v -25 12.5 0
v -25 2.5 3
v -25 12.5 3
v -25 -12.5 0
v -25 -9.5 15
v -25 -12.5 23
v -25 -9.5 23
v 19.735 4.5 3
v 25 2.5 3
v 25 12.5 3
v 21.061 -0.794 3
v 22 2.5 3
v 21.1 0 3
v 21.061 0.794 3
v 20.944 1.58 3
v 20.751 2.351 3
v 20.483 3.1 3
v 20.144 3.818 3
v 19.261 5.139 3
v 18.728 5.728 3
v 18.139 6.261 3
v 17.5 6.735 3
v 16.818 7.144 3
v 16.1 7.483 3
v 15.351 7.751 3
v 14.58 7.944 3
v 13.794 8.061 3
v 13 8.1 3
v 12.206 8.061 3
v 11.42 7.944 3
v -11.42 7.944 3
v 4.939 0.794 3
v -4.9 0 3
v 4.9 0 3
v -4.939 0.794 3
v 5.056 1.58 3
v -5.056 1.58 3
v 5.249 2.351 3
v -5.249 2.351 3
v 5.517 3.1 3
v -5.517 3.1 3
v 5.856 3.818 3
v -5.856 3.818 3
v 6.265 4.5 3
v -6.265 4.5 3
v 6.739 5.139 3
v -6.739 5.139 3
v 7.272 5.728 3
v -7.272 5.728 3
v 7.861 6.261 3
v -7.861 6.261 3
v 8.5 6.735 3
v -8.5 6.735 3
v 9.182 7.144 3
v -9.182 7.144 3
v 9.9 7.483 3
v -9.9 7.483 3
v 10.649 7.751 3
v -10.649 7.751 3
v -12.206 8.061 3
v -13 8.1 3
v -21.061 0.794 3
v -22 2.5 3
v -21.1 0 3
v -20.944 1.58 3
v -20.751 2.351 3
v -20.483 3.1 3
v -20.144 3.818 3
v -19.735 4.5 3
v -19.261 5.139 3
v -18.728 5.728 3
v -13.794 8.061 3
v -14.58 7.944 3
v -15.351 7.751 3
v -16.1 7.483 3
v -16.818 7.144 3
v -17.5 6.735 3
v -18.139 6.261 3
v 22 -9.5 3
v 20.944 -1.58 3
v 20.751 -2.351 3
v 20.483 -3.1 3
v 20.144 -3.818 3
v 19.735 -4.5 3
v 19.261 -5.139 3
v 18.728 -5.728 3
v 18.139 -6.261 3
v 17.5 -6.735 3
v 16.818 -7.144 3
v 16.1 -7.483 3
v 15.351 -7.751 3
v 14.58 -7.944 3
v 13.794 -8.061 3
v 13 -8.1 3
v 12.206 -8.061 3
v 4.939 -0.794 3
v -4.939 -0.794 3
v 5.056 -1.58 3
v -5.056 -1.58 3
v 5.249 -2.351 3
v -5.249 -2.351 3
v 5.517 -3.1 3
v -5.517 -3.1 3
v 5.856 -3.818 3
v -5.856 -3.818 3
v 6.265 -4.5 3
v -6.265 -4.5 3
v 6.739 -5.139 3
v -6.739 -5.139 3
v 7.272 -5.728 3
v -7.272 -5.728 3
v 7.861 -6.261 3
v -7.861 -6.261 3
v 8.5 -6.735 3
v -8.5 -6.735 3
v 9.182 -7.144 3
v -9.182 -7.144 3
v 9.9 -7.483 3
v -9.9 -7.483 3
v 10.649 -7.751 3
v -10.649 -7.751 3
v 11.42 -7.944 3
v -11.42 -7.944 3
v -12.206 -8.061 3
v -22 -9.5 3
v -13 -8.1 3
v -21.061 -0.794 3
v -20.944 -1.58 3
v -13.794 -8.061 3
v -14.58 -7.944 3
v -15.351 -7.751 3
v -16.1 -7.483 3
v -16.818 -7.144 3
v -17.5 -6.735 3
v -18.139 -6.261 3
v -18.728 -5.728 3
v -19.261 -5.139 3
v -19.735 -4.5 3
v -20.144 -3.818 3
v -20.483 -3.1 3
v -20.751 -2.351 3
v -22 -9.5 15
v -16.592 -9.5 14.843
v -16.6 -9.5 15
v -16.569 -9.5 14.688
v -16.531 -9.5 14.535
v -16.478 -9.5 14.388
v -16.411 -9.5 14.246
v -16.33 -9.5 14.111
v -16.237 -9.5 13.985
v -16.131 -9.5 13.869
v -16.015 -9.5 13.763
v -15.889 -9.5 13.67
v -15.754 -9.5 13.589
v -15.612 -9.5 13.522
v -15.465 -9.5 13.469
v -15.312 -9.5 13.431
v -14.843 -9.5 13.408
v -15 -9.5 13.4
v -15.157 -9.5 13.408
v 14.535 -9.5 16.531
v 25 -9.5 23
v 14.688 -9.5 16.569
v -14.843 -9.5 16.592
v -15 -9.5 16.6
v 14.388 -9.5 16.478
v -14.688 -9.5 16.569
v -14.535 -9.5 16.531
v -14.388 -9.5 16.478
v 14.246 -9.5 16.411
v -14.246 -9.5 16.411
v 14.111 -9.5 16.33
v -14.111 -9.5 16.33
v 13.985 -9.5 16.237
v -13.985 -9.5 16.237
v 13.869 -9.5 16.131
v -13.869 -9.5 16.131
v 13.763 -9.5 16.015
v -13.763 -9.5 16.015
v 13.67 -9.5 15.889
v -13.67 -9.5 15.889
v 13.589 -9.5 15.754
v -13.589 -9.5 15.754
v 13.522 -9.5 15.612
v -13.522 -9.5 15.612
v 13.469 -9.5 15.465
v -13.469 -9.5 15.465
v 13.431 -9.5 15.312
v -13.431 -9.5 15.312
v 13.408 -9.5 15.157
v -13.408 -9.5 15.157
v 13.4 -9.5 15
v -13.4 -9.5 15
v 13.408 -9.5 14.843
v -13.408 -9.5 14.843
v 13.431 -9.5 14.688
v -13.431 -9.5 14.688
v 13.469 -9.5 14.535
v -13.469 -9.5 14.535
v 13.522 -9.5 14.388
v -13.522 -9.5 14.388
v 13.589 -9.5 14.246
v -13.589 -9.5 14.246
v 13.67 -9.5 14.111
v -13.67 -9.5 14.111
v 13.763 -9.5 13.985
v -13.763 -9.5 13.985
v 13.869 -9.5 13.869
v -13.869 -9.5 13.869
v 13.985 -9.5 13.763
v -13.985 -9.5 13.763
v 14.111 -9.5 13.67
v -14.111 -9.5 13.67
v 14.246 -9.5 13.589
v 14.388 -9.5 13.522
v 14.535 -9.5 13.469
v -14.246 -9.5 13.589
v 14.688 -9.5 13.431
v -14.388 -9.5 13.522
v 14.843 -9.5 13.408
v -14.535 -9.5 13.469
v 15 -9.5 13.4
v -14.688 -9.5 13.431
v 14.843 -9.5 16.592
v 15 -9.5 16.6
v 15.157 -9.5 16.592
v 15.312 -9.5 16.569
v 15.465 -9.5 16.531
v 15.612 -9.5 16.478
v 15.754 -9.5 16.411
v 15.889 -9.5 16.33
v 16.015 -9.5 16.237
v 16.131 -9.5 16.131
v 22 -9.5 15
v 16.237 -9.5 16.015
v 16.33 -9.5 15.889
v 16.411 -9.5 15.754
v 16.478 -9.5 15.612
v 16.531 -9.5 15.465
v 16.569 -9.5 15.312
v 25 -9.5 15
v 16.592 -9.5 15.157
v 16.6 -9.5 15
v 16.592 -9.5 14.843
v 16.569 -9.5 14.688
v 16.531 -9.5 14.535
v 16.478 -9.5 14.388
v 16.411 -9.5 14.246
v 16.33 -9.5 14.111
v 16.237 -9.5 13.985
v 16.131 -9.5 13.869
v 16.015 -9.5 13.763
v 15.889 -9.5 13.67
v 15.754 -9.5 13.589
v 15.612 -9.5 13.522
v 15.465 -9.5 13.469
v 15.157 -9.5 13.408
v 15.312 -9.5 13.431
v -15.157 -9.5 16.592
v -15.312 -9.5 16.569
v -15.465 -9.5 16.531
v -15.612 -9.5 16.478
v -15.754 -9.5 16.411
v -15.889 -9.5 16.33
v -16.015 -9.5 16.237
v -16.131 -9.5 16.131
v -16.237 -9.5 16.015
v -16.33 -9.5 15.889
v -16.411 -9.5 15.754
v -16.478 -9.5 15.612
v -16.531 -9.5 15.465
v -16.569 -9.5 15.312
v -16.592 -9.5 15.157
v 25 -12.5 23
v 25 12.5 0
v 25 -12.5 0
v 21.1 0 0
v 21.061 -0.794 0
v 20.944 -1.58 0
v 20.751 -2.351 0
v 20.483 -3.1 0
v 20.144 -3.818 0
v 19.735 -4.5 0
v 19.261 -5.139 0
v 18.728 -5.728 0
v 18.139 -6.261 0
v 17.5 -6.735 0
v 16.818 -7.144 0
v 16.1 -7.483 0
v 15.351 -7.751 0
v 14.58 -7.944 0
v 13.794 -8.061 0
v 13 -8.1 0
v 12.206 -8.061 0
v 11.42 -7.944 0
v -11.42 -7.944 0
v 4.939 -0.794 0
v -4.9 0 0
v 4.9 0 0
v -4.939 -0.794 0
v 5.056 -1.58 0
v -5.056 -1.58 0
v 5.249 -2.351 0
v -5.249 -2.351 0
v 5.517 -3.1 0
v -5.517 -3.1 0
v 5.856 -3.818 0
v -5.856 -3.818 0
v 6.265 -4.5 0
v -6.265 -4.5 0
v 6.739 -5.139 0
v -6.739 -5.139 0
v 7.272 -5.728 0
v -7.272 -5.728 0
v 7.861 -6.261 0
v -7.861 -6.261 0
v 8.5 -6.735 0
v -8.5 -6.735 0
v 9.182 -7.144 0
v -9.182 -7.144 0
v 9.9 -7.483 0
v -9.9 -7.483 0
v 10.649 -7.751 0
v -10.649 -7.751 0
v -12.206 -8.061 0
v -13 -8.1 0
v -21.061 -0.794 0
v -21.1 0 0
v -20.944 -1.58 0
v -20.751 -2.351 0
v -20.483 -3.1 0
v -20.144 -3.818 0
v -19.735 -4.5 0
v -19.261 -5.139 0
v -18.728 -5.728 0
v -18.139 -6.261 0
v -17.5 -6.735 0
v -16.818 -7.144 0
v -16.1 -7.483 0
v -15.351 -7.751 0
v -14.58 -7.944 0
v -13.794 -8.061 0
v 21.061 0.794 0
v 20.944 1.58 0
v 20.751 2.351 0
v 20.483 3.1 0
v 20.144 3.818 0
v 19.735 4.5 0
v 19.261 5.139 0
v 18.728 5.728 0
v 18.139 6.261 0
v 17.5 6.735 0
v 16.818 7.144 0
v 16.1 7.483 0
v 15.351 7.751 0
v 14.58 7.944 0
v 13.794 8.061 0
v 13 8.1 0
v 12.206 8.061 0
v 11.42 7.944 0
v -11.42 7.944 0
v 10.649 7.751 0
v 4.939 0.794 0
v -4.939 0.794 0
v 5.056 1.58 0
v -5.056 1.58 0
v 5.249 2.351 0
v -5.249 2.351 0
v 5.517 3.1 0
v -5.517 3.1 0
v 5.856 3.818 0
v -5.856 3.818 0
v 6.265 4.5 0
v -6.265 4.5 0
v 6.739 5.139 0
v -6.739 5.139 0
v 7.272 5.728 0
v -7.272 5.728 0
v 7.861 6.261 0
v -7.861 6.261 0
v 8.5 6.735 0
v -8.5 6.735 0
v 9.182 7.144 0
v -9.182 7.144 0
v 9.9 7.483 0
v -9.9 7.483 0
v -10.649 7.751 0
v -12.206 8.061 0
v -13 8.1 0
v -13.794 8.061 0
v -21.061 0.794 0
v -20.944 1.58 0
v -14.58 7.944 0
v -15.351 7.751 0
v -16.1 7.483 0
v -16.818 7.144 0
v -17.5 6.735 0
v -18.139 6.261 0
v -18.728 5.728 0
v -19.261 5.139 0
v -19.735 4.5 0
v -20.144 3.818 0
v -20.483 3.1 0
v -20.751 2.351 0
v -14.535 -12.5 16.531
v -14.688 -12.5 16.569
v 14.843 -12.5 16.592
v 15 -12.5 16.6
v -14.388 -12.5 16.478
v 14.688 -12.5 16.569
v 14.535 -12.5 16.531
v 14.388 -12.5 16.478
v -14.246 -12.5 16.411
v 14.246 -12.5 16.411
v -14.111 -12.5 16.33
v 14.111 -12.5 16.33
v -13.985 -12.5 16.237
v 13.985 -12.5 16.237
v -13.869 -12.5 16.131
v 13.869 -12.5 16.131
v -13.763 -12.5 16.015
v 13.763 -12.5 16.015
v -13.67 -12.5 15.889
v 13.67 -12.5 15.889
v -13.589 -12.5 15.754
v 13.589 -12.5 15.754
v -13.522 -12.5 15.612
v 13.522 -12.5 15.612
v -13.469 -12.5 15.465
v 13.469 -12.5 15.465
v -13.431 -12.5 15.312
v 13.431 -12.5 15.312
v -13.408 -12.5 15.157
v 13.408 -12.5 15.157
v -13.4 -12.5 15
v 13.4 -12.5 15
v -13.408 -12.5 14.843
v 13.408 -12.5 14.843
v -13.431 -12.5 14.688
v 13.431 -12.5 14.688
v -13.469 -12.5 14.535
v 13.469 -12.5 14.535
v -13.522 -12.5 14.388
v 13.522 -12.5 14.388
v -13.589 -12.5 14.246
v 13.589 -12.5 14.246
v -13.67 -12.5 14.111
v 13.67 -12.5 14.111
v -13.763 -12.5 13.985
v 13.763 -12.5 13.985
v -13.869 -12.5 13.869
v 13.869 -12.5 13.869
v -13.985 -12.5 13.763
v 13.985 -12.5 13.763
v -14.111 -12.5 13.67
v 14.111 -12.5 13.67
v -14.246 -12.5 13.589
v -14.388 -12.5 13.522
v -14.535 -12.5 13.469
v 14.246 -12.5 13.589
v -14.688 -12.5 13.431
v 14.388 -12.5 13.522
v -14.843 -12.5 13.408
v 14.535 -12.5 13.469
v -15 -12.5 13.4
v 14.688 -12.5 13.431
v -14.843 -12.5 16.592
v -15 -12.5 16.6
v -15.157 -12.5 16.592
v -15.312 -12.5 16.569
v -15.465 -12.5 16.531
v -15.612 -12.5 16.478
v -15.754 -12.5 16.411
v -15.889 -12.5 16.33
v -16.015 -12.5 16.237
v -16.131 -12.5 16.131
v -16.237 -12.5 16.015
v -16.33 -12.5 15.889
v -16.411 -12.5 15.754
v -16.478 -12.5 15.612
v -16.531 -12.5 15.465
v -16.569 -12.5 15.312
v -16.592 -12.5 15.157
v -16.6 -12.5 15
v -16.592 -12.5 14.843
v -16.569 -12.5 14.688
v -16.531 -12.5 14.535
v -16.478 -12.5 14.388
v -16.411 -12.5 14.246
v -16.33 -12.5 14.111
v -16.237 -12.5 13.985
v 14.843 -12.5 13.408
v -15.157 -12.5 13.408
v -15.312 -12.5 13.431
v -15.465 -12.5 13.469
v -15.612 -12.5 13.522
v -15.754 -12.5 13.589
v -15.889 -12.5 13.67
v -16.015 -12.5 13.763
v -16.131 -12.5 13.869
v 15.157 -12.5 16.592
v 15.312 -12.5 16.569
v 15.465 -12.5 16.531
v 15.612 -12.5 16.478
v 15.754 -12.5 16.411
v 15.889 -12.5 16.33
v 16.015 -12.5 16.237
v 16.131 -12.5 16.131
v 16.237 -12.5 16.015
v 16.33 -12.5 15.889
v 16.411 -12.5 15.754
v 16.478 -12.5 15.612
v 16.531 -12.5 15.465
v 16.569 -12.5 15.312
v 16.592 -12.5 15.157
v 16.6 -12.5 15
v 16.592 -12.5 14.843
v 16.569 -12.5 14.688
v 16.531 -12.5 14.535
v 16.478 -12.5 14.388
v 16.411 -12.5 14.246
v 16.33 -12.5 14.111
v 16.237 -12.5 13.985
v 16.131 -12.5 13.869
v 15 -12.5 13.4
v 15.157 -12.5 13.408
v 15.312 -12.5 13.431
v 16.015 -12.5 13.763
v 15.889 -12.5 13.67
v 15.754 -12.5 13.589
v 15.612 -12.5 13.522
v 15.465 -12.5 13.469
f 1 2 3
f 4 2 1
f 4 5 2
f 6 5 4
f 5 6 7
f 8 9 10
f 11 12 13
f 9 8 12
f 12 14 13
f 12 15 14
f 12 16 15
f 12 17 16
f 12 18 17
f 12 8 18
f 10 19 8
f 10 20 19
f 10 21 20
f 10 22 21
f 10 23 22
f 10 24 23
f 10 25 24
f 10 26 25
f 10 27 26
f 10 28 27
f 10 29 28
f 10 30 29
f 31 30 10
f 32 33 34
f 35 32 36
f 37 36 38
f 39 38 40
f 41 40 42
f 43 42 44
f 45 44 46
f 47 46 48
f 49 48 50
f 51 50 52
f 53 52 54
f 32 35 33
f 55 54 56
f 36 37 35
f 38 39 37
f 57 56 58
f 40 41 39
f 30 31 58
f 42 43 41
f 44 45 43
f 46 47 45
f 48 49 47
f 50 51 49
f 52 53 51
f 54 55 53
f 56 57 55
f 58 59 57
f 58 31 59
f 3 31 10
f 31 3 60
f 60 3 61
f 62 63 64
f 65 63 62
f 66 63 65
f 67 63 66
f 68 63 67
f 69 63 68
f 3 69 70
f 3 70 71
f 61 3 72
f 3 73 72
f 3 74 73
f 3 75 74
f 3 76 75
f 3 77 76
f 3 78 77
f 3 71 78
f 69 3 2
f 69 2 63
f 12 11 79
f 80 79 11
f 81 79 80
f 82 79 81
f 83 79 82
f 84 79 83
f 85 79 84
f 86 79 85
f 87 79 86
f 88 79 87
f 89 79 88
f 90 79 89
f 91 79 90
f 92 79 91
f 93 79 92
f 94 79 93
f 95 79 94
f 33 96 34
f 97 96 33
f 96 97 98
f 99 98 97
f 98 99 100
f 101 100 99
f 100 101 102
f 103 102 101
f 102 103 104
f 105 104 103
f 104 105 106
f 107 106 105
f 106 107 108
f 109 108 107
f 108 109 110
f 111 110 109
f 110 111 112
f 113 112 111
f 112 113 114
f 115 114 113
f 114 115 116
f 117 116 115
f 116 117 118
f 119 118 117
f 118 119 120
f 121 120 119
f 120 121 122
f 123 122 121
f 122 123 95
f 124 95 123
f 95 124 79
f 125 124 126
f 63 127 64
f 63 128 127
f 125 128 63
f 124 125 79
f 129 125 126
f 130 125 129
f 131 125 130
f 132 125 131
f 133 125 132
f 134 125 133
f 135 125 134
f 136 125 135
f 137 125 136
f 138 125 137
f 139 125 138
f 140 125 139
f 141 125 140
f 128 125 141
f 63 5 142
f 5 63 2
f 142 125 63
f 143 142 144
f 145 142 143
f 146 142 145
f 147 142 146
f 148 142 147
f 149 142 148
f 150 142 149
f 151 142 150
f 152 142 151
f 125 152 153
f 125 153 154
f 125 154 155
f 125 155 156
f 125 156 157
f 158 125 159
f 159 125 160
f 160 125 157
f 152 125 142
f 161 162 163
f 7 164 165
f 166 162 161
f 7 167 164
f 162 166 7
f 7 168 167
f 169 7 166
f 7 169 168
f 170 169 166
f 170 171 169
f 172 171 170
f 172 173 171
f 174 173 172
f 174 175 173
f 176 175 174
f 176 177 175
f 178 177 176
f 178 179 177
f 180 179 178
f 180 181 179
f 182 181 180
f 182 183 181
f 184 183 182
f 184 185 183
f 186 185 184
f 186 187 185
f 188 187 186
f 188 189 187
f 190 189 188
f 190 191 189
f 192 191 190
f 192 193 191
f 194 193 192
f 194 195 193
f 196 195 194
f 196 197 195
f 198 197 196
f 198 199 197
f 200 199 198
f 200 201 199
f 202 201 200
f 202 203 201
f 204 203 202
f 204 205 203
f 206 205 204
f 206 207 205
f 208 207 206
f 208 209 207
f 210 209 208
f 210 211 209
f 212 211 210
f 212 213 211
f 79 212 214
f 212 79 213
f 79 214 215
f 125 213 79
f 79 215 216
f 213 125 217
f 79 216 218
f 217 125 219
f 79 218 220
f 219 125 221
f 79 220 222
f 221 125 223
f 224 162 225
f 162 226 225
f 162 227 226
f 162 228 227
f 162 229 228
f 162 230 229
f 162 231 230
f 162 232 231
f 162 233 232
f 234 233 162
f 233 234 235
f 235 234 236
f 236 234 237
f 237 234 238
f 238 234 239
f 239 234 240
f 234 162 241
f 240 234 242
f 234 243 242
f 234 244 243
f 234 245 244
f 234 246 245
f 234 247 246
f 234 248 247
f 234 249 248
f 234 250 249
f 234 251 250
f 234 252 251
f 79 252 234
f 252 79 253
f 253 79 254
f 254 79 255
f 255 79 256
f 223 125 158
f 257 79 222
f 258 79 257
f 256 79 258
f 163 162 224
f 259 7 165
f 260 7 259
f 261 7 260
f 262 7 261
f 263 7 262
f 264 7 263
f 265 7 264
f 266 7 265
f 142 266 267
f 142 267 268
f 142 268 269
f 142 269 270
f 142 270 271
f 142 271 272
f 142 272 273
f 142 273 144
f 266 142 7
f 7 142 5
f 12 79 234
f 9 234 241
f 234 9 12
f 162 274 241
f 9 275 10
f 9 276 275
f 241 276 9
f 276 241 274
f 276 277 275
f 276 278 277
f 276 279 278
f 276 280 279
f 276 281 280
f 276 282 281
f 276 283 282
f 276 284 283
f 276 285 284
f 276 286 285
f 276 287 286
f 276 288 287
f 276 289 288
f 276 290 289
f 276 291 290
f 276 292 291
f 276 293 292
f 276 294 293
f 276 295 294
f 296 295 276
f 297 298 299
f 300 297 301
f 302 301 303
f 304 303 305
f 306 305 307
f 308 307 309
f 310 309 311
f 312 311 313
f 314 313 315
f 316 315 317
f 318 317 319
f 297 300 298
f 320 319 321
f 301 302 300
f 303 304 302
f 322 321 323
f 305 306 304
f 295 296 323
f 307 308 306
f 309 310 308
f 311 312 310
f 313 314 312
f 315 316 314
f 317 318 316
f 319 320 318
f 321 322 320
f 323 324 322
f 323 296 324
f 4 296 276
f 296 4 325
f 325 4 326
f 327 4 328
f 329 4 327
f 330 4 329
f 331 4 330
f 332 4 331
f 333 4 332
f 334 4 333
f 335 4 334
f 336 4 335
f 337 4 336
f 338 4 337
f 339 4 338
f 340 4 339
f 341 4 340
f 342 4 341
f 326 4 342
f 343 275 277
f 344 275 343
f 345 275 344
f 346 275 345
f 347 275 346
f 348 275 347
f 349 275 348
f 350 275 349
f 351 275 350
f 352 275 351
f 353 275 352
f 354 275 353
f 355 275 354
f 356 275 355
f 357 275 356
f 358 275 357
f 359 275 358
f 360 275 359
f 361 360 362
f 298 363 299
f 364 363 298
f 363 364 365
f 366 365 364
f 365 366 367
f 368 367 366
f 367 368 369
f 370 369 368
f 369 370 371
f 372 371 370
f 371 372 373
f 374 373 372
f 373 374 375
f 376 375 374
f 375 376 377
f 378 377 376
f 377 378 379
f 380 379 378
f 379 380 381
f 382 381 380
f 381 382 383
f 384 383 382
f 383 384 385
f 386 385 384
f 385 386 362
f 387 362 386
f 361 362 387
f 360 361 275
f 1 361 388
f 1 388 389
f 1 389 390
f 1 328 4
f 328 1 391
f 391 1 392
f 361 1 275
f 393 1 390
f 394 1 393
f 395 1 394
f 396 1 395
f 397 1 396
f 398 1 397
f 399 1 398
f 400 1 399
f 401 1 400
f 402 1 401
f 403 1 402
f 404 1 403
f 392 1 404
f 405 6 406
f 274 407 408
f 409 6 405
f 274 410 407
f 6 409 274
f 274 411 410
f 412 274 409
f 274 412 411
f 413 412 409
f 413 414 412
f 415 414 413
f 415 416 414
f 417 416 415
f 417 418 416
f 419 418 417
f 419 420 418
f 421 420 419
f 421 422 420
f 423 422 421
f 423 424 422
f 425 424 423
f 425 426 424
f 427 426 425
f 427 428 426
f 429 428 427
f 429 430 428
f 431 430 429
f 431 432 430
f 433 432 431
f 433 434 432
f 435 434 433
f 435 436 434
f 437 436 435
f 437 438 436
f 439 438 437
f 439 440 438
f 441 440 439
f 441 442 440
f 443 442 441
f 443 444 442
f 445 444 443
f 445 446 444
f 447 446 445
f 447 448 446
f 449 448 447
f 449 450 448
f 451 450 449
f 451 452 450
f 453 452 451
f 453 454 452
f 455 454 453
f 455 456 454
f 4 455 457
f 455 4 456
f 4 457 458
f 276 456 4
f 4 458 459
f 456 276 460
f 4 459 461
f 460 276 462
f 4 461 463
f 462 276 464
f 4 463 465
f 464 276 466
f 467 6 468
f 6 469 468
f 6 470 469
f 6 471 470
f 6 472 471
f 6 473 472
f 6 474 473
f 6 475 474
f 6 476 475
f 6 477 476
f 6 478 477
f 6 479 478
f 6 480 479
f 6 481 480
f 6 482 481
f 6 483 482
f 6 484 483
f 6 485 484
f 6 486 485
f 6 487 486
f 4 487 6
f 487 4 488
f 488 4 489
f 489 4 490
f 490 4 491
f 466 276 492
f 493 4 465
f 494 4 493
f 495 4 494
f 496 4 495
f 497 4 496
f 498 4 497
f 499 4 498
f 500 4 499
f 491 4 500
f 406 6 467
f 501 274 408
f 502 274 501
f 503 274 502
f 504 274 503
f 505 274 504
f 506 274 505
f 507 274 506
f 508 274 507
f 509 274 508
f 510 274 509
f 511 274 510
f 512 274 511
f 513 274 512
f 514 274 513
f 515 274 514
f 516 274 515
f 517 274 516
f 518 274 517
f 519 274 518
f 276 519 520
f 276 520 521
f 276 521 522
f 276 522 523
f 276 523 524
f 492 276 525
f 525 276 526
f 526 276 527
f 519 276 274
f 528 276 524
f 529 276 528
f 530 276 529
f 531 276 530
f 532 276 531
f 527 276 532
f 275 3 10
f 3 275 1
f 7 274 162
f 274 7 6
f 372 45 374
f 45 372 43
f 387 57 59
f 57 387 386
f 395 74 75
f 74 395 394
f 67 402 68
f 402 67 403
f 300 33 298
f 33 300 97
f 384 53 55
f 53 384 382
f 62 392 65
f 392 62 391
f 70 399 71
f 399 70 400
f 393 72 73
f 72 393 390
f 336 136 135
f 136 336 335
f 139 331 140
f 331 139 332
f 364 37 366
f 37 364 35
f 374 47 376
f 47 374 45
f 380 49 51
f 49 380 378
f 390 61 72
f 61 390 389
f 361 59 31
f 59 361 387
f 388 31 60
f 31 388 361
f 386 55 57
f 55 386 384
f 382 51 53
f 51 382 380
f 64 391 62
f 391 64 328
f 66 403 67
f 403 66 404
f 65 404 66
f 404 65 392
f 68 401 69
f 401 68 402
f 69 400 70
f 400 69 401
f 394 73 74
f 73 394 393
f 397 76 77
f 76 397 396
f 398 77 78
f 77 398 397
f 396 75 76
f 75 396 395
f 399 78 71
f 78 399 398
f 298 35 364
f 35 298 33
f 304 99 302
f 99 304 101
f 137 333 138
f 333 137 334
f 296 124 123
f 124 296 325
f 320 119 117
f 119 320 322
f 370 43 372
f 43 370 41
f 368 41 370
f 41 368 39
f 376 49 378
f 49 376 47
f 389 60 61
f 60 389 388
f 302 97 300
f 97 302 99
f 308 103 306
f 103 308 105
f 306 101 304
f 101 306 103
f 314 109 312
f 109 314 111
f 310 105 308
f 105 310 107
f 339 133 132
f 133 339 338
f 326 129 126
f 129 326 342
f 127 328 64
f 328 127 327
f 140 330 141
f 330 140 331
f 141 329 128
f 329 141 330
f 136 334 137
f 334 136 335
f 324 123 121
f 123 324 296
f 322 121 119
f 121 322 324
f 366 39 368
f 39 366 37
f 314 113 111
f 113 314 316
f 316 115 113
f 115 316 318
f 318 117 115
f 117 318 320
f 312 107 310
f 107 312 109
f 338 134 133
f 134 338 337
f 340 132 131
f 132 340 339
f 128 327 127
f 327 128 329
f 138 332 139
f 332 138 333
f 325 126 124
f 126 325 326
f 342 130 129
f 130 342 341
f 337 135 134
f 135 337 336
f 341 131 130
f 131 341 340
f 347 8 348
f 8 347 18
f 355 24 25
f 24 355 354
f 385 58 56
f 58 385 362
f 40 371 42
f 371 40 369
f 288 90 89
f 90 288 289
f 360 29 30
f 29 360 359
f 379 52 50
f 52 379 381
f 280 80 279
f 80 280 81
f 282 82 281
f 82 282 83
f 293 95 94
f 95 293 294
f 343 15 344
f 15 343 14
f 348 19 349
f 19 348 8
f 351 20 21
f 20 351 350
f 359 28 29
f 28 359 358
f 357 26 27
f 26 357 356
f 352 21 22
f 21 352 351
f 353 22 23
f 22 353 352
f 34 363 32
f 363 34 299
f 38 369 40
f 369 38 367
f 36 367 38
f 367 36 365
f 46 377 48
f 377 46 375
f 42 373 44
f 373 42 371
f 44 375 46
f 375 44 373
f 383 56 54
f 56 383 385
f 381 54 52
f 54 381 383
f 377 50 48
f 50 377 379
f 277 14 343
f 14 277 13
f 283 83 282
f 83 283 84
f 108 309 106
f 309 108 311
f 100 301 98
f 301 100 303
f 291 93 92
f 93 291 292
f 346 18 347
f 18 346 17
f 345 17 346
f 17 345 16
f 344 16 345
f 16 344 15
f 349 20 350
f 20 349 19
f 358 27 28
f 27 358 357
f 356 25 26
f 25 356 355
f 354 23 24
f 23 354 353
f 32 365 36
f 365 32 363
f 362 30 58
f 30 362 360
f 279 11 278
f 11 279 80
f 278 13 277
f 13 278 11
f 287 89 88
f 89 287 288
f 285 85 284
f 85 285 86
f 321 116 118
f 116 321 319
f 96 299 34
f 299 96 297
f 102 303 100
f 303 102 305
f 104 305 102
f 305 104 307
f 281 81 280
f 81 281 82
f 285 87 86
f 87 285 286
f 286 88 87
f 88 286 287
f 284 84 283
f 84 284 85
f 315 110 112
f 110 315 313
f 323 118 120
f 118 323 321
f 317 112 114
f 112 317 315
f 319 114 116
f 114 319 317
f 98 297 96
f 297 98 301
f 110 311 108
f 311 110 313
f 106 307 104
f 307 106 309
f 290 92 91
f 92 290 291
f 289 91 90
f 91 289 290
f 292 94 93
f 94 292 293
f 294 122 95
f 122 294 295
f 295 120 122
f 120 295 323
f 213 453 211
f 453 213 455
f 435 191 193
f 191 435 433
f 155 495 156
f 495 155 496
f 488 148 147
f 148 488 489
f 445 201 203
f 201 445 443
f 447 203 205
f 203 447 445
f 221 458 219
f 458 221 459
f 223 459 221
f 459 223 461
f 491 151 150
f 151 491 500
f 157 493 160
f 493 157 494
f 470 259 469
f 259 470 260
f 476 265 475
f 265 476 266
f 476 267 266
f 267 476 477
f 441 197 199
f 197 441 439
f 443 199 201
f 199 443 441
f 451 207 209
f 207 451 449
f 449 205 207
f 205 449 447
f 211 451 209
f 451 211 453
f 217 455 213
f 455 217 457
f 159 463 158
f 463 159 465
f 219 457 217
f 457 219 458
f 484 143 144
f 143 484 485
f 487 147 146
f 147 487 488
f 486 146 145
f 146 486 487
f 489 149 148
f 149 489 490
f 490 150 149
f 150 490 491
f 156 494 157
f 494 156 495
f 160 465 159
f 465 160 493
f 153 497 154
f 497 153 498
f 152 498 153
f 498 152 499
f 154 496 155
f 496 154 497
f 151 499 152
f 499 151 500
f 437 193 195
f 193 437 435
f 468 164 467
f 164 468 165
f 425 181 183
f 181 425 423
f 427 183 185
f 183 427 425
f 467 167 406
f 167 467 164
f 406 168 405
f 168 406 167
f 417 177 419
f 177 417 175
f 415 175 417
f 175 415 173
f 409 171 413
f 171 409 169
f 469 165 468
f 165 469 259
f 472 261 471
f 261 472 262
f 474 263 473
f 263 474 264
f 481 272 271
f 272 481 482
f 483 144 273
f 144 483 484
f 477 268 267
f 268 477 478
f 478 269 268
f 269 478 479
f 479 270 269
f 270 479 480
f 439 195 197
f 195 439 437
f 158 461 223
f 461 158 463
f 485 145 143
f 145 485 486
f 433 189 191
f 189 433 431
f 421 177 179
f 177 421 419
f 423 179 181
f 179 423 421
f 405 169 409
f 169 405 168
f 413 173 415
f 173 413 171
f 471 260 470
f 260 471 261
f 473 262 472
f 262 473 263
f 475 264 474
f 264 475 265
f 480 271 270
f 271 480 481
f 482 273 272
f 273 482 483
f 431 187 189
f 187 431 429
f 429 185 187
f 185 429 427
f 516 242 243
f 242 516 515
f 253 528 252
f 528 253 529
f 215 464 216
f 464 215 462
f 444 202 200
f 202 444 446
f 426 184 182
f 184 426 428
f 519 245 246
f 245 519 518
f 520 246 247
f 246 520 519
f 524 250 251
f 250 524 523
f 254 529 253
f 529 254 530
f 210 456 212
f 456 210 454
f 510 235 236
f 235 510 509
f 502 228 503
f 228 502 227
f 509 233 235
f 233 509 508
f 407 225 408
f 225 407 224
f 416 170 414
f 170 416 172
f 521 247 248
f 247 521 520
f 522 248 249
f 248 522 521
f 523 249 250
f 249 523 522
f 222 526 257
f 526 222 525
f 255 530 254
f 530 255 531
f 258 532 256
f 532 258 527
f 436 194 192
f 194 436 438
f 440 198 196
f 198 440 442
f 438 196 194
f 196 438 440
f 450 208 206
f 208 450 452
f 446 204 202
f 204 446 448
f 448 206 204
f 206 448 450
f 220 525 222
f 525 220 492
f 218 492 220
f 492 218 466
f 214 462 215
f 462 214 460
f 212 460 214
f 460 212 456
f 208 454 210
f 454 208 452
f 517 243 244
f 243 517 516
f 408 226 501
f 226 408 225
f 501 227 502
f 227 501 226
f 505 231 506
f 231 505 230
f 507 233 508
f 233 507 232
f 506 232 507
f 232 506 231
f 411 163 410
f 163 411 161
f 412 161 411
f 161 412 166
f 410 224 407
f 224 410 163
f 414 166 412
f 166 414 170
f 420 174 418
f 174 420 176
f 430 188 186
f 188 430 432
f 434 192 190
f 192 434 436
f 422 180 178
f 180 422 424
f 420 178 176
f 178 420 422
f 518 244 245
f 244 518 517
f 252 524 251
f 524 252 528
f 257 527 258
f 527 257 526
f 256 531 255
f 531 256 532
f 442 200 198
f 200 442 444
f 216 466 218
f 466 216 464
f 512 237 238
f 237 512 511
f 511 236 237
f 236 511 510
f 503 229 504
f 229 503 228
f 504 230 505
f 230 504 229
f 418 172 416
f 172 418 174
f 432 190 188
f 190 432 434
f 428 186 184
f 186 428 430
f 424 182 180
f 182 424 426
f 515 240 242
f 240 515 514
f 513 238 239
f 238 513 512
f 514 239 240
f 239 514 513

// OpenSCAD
// Reto 04 · Soporte para sensor ultrasónico HC-SR04
// Diseño e Impresión 3D en el aula · Pablo Moraga · CC BY-NC-ND 4.0
$fn = 64;
difference() {
  union() {
    translate([-25, -12.5, 0]) cube([50, 25, 3]);                         // placa frontal
    translate([-25, -12.5, 0]) cube([50, 3, 23]);                         // escuadra
    for (x = [-25, 22]) translate([x, -9.5, 3]) rotate([90, 0, 90]) linear_extrude(3) polygon([[0, 0], [12, 0], [0, 12]]);
  }
  for (x = [-13, 13]) translate([x, 0, -1]) cylinder(d = 16.2, h = 5);
  for (x = [-15, 15]) translate([x, -14, 15]) rotate([-90, 0, 0]) cylinder(d = 3.2, h = 6);
}
